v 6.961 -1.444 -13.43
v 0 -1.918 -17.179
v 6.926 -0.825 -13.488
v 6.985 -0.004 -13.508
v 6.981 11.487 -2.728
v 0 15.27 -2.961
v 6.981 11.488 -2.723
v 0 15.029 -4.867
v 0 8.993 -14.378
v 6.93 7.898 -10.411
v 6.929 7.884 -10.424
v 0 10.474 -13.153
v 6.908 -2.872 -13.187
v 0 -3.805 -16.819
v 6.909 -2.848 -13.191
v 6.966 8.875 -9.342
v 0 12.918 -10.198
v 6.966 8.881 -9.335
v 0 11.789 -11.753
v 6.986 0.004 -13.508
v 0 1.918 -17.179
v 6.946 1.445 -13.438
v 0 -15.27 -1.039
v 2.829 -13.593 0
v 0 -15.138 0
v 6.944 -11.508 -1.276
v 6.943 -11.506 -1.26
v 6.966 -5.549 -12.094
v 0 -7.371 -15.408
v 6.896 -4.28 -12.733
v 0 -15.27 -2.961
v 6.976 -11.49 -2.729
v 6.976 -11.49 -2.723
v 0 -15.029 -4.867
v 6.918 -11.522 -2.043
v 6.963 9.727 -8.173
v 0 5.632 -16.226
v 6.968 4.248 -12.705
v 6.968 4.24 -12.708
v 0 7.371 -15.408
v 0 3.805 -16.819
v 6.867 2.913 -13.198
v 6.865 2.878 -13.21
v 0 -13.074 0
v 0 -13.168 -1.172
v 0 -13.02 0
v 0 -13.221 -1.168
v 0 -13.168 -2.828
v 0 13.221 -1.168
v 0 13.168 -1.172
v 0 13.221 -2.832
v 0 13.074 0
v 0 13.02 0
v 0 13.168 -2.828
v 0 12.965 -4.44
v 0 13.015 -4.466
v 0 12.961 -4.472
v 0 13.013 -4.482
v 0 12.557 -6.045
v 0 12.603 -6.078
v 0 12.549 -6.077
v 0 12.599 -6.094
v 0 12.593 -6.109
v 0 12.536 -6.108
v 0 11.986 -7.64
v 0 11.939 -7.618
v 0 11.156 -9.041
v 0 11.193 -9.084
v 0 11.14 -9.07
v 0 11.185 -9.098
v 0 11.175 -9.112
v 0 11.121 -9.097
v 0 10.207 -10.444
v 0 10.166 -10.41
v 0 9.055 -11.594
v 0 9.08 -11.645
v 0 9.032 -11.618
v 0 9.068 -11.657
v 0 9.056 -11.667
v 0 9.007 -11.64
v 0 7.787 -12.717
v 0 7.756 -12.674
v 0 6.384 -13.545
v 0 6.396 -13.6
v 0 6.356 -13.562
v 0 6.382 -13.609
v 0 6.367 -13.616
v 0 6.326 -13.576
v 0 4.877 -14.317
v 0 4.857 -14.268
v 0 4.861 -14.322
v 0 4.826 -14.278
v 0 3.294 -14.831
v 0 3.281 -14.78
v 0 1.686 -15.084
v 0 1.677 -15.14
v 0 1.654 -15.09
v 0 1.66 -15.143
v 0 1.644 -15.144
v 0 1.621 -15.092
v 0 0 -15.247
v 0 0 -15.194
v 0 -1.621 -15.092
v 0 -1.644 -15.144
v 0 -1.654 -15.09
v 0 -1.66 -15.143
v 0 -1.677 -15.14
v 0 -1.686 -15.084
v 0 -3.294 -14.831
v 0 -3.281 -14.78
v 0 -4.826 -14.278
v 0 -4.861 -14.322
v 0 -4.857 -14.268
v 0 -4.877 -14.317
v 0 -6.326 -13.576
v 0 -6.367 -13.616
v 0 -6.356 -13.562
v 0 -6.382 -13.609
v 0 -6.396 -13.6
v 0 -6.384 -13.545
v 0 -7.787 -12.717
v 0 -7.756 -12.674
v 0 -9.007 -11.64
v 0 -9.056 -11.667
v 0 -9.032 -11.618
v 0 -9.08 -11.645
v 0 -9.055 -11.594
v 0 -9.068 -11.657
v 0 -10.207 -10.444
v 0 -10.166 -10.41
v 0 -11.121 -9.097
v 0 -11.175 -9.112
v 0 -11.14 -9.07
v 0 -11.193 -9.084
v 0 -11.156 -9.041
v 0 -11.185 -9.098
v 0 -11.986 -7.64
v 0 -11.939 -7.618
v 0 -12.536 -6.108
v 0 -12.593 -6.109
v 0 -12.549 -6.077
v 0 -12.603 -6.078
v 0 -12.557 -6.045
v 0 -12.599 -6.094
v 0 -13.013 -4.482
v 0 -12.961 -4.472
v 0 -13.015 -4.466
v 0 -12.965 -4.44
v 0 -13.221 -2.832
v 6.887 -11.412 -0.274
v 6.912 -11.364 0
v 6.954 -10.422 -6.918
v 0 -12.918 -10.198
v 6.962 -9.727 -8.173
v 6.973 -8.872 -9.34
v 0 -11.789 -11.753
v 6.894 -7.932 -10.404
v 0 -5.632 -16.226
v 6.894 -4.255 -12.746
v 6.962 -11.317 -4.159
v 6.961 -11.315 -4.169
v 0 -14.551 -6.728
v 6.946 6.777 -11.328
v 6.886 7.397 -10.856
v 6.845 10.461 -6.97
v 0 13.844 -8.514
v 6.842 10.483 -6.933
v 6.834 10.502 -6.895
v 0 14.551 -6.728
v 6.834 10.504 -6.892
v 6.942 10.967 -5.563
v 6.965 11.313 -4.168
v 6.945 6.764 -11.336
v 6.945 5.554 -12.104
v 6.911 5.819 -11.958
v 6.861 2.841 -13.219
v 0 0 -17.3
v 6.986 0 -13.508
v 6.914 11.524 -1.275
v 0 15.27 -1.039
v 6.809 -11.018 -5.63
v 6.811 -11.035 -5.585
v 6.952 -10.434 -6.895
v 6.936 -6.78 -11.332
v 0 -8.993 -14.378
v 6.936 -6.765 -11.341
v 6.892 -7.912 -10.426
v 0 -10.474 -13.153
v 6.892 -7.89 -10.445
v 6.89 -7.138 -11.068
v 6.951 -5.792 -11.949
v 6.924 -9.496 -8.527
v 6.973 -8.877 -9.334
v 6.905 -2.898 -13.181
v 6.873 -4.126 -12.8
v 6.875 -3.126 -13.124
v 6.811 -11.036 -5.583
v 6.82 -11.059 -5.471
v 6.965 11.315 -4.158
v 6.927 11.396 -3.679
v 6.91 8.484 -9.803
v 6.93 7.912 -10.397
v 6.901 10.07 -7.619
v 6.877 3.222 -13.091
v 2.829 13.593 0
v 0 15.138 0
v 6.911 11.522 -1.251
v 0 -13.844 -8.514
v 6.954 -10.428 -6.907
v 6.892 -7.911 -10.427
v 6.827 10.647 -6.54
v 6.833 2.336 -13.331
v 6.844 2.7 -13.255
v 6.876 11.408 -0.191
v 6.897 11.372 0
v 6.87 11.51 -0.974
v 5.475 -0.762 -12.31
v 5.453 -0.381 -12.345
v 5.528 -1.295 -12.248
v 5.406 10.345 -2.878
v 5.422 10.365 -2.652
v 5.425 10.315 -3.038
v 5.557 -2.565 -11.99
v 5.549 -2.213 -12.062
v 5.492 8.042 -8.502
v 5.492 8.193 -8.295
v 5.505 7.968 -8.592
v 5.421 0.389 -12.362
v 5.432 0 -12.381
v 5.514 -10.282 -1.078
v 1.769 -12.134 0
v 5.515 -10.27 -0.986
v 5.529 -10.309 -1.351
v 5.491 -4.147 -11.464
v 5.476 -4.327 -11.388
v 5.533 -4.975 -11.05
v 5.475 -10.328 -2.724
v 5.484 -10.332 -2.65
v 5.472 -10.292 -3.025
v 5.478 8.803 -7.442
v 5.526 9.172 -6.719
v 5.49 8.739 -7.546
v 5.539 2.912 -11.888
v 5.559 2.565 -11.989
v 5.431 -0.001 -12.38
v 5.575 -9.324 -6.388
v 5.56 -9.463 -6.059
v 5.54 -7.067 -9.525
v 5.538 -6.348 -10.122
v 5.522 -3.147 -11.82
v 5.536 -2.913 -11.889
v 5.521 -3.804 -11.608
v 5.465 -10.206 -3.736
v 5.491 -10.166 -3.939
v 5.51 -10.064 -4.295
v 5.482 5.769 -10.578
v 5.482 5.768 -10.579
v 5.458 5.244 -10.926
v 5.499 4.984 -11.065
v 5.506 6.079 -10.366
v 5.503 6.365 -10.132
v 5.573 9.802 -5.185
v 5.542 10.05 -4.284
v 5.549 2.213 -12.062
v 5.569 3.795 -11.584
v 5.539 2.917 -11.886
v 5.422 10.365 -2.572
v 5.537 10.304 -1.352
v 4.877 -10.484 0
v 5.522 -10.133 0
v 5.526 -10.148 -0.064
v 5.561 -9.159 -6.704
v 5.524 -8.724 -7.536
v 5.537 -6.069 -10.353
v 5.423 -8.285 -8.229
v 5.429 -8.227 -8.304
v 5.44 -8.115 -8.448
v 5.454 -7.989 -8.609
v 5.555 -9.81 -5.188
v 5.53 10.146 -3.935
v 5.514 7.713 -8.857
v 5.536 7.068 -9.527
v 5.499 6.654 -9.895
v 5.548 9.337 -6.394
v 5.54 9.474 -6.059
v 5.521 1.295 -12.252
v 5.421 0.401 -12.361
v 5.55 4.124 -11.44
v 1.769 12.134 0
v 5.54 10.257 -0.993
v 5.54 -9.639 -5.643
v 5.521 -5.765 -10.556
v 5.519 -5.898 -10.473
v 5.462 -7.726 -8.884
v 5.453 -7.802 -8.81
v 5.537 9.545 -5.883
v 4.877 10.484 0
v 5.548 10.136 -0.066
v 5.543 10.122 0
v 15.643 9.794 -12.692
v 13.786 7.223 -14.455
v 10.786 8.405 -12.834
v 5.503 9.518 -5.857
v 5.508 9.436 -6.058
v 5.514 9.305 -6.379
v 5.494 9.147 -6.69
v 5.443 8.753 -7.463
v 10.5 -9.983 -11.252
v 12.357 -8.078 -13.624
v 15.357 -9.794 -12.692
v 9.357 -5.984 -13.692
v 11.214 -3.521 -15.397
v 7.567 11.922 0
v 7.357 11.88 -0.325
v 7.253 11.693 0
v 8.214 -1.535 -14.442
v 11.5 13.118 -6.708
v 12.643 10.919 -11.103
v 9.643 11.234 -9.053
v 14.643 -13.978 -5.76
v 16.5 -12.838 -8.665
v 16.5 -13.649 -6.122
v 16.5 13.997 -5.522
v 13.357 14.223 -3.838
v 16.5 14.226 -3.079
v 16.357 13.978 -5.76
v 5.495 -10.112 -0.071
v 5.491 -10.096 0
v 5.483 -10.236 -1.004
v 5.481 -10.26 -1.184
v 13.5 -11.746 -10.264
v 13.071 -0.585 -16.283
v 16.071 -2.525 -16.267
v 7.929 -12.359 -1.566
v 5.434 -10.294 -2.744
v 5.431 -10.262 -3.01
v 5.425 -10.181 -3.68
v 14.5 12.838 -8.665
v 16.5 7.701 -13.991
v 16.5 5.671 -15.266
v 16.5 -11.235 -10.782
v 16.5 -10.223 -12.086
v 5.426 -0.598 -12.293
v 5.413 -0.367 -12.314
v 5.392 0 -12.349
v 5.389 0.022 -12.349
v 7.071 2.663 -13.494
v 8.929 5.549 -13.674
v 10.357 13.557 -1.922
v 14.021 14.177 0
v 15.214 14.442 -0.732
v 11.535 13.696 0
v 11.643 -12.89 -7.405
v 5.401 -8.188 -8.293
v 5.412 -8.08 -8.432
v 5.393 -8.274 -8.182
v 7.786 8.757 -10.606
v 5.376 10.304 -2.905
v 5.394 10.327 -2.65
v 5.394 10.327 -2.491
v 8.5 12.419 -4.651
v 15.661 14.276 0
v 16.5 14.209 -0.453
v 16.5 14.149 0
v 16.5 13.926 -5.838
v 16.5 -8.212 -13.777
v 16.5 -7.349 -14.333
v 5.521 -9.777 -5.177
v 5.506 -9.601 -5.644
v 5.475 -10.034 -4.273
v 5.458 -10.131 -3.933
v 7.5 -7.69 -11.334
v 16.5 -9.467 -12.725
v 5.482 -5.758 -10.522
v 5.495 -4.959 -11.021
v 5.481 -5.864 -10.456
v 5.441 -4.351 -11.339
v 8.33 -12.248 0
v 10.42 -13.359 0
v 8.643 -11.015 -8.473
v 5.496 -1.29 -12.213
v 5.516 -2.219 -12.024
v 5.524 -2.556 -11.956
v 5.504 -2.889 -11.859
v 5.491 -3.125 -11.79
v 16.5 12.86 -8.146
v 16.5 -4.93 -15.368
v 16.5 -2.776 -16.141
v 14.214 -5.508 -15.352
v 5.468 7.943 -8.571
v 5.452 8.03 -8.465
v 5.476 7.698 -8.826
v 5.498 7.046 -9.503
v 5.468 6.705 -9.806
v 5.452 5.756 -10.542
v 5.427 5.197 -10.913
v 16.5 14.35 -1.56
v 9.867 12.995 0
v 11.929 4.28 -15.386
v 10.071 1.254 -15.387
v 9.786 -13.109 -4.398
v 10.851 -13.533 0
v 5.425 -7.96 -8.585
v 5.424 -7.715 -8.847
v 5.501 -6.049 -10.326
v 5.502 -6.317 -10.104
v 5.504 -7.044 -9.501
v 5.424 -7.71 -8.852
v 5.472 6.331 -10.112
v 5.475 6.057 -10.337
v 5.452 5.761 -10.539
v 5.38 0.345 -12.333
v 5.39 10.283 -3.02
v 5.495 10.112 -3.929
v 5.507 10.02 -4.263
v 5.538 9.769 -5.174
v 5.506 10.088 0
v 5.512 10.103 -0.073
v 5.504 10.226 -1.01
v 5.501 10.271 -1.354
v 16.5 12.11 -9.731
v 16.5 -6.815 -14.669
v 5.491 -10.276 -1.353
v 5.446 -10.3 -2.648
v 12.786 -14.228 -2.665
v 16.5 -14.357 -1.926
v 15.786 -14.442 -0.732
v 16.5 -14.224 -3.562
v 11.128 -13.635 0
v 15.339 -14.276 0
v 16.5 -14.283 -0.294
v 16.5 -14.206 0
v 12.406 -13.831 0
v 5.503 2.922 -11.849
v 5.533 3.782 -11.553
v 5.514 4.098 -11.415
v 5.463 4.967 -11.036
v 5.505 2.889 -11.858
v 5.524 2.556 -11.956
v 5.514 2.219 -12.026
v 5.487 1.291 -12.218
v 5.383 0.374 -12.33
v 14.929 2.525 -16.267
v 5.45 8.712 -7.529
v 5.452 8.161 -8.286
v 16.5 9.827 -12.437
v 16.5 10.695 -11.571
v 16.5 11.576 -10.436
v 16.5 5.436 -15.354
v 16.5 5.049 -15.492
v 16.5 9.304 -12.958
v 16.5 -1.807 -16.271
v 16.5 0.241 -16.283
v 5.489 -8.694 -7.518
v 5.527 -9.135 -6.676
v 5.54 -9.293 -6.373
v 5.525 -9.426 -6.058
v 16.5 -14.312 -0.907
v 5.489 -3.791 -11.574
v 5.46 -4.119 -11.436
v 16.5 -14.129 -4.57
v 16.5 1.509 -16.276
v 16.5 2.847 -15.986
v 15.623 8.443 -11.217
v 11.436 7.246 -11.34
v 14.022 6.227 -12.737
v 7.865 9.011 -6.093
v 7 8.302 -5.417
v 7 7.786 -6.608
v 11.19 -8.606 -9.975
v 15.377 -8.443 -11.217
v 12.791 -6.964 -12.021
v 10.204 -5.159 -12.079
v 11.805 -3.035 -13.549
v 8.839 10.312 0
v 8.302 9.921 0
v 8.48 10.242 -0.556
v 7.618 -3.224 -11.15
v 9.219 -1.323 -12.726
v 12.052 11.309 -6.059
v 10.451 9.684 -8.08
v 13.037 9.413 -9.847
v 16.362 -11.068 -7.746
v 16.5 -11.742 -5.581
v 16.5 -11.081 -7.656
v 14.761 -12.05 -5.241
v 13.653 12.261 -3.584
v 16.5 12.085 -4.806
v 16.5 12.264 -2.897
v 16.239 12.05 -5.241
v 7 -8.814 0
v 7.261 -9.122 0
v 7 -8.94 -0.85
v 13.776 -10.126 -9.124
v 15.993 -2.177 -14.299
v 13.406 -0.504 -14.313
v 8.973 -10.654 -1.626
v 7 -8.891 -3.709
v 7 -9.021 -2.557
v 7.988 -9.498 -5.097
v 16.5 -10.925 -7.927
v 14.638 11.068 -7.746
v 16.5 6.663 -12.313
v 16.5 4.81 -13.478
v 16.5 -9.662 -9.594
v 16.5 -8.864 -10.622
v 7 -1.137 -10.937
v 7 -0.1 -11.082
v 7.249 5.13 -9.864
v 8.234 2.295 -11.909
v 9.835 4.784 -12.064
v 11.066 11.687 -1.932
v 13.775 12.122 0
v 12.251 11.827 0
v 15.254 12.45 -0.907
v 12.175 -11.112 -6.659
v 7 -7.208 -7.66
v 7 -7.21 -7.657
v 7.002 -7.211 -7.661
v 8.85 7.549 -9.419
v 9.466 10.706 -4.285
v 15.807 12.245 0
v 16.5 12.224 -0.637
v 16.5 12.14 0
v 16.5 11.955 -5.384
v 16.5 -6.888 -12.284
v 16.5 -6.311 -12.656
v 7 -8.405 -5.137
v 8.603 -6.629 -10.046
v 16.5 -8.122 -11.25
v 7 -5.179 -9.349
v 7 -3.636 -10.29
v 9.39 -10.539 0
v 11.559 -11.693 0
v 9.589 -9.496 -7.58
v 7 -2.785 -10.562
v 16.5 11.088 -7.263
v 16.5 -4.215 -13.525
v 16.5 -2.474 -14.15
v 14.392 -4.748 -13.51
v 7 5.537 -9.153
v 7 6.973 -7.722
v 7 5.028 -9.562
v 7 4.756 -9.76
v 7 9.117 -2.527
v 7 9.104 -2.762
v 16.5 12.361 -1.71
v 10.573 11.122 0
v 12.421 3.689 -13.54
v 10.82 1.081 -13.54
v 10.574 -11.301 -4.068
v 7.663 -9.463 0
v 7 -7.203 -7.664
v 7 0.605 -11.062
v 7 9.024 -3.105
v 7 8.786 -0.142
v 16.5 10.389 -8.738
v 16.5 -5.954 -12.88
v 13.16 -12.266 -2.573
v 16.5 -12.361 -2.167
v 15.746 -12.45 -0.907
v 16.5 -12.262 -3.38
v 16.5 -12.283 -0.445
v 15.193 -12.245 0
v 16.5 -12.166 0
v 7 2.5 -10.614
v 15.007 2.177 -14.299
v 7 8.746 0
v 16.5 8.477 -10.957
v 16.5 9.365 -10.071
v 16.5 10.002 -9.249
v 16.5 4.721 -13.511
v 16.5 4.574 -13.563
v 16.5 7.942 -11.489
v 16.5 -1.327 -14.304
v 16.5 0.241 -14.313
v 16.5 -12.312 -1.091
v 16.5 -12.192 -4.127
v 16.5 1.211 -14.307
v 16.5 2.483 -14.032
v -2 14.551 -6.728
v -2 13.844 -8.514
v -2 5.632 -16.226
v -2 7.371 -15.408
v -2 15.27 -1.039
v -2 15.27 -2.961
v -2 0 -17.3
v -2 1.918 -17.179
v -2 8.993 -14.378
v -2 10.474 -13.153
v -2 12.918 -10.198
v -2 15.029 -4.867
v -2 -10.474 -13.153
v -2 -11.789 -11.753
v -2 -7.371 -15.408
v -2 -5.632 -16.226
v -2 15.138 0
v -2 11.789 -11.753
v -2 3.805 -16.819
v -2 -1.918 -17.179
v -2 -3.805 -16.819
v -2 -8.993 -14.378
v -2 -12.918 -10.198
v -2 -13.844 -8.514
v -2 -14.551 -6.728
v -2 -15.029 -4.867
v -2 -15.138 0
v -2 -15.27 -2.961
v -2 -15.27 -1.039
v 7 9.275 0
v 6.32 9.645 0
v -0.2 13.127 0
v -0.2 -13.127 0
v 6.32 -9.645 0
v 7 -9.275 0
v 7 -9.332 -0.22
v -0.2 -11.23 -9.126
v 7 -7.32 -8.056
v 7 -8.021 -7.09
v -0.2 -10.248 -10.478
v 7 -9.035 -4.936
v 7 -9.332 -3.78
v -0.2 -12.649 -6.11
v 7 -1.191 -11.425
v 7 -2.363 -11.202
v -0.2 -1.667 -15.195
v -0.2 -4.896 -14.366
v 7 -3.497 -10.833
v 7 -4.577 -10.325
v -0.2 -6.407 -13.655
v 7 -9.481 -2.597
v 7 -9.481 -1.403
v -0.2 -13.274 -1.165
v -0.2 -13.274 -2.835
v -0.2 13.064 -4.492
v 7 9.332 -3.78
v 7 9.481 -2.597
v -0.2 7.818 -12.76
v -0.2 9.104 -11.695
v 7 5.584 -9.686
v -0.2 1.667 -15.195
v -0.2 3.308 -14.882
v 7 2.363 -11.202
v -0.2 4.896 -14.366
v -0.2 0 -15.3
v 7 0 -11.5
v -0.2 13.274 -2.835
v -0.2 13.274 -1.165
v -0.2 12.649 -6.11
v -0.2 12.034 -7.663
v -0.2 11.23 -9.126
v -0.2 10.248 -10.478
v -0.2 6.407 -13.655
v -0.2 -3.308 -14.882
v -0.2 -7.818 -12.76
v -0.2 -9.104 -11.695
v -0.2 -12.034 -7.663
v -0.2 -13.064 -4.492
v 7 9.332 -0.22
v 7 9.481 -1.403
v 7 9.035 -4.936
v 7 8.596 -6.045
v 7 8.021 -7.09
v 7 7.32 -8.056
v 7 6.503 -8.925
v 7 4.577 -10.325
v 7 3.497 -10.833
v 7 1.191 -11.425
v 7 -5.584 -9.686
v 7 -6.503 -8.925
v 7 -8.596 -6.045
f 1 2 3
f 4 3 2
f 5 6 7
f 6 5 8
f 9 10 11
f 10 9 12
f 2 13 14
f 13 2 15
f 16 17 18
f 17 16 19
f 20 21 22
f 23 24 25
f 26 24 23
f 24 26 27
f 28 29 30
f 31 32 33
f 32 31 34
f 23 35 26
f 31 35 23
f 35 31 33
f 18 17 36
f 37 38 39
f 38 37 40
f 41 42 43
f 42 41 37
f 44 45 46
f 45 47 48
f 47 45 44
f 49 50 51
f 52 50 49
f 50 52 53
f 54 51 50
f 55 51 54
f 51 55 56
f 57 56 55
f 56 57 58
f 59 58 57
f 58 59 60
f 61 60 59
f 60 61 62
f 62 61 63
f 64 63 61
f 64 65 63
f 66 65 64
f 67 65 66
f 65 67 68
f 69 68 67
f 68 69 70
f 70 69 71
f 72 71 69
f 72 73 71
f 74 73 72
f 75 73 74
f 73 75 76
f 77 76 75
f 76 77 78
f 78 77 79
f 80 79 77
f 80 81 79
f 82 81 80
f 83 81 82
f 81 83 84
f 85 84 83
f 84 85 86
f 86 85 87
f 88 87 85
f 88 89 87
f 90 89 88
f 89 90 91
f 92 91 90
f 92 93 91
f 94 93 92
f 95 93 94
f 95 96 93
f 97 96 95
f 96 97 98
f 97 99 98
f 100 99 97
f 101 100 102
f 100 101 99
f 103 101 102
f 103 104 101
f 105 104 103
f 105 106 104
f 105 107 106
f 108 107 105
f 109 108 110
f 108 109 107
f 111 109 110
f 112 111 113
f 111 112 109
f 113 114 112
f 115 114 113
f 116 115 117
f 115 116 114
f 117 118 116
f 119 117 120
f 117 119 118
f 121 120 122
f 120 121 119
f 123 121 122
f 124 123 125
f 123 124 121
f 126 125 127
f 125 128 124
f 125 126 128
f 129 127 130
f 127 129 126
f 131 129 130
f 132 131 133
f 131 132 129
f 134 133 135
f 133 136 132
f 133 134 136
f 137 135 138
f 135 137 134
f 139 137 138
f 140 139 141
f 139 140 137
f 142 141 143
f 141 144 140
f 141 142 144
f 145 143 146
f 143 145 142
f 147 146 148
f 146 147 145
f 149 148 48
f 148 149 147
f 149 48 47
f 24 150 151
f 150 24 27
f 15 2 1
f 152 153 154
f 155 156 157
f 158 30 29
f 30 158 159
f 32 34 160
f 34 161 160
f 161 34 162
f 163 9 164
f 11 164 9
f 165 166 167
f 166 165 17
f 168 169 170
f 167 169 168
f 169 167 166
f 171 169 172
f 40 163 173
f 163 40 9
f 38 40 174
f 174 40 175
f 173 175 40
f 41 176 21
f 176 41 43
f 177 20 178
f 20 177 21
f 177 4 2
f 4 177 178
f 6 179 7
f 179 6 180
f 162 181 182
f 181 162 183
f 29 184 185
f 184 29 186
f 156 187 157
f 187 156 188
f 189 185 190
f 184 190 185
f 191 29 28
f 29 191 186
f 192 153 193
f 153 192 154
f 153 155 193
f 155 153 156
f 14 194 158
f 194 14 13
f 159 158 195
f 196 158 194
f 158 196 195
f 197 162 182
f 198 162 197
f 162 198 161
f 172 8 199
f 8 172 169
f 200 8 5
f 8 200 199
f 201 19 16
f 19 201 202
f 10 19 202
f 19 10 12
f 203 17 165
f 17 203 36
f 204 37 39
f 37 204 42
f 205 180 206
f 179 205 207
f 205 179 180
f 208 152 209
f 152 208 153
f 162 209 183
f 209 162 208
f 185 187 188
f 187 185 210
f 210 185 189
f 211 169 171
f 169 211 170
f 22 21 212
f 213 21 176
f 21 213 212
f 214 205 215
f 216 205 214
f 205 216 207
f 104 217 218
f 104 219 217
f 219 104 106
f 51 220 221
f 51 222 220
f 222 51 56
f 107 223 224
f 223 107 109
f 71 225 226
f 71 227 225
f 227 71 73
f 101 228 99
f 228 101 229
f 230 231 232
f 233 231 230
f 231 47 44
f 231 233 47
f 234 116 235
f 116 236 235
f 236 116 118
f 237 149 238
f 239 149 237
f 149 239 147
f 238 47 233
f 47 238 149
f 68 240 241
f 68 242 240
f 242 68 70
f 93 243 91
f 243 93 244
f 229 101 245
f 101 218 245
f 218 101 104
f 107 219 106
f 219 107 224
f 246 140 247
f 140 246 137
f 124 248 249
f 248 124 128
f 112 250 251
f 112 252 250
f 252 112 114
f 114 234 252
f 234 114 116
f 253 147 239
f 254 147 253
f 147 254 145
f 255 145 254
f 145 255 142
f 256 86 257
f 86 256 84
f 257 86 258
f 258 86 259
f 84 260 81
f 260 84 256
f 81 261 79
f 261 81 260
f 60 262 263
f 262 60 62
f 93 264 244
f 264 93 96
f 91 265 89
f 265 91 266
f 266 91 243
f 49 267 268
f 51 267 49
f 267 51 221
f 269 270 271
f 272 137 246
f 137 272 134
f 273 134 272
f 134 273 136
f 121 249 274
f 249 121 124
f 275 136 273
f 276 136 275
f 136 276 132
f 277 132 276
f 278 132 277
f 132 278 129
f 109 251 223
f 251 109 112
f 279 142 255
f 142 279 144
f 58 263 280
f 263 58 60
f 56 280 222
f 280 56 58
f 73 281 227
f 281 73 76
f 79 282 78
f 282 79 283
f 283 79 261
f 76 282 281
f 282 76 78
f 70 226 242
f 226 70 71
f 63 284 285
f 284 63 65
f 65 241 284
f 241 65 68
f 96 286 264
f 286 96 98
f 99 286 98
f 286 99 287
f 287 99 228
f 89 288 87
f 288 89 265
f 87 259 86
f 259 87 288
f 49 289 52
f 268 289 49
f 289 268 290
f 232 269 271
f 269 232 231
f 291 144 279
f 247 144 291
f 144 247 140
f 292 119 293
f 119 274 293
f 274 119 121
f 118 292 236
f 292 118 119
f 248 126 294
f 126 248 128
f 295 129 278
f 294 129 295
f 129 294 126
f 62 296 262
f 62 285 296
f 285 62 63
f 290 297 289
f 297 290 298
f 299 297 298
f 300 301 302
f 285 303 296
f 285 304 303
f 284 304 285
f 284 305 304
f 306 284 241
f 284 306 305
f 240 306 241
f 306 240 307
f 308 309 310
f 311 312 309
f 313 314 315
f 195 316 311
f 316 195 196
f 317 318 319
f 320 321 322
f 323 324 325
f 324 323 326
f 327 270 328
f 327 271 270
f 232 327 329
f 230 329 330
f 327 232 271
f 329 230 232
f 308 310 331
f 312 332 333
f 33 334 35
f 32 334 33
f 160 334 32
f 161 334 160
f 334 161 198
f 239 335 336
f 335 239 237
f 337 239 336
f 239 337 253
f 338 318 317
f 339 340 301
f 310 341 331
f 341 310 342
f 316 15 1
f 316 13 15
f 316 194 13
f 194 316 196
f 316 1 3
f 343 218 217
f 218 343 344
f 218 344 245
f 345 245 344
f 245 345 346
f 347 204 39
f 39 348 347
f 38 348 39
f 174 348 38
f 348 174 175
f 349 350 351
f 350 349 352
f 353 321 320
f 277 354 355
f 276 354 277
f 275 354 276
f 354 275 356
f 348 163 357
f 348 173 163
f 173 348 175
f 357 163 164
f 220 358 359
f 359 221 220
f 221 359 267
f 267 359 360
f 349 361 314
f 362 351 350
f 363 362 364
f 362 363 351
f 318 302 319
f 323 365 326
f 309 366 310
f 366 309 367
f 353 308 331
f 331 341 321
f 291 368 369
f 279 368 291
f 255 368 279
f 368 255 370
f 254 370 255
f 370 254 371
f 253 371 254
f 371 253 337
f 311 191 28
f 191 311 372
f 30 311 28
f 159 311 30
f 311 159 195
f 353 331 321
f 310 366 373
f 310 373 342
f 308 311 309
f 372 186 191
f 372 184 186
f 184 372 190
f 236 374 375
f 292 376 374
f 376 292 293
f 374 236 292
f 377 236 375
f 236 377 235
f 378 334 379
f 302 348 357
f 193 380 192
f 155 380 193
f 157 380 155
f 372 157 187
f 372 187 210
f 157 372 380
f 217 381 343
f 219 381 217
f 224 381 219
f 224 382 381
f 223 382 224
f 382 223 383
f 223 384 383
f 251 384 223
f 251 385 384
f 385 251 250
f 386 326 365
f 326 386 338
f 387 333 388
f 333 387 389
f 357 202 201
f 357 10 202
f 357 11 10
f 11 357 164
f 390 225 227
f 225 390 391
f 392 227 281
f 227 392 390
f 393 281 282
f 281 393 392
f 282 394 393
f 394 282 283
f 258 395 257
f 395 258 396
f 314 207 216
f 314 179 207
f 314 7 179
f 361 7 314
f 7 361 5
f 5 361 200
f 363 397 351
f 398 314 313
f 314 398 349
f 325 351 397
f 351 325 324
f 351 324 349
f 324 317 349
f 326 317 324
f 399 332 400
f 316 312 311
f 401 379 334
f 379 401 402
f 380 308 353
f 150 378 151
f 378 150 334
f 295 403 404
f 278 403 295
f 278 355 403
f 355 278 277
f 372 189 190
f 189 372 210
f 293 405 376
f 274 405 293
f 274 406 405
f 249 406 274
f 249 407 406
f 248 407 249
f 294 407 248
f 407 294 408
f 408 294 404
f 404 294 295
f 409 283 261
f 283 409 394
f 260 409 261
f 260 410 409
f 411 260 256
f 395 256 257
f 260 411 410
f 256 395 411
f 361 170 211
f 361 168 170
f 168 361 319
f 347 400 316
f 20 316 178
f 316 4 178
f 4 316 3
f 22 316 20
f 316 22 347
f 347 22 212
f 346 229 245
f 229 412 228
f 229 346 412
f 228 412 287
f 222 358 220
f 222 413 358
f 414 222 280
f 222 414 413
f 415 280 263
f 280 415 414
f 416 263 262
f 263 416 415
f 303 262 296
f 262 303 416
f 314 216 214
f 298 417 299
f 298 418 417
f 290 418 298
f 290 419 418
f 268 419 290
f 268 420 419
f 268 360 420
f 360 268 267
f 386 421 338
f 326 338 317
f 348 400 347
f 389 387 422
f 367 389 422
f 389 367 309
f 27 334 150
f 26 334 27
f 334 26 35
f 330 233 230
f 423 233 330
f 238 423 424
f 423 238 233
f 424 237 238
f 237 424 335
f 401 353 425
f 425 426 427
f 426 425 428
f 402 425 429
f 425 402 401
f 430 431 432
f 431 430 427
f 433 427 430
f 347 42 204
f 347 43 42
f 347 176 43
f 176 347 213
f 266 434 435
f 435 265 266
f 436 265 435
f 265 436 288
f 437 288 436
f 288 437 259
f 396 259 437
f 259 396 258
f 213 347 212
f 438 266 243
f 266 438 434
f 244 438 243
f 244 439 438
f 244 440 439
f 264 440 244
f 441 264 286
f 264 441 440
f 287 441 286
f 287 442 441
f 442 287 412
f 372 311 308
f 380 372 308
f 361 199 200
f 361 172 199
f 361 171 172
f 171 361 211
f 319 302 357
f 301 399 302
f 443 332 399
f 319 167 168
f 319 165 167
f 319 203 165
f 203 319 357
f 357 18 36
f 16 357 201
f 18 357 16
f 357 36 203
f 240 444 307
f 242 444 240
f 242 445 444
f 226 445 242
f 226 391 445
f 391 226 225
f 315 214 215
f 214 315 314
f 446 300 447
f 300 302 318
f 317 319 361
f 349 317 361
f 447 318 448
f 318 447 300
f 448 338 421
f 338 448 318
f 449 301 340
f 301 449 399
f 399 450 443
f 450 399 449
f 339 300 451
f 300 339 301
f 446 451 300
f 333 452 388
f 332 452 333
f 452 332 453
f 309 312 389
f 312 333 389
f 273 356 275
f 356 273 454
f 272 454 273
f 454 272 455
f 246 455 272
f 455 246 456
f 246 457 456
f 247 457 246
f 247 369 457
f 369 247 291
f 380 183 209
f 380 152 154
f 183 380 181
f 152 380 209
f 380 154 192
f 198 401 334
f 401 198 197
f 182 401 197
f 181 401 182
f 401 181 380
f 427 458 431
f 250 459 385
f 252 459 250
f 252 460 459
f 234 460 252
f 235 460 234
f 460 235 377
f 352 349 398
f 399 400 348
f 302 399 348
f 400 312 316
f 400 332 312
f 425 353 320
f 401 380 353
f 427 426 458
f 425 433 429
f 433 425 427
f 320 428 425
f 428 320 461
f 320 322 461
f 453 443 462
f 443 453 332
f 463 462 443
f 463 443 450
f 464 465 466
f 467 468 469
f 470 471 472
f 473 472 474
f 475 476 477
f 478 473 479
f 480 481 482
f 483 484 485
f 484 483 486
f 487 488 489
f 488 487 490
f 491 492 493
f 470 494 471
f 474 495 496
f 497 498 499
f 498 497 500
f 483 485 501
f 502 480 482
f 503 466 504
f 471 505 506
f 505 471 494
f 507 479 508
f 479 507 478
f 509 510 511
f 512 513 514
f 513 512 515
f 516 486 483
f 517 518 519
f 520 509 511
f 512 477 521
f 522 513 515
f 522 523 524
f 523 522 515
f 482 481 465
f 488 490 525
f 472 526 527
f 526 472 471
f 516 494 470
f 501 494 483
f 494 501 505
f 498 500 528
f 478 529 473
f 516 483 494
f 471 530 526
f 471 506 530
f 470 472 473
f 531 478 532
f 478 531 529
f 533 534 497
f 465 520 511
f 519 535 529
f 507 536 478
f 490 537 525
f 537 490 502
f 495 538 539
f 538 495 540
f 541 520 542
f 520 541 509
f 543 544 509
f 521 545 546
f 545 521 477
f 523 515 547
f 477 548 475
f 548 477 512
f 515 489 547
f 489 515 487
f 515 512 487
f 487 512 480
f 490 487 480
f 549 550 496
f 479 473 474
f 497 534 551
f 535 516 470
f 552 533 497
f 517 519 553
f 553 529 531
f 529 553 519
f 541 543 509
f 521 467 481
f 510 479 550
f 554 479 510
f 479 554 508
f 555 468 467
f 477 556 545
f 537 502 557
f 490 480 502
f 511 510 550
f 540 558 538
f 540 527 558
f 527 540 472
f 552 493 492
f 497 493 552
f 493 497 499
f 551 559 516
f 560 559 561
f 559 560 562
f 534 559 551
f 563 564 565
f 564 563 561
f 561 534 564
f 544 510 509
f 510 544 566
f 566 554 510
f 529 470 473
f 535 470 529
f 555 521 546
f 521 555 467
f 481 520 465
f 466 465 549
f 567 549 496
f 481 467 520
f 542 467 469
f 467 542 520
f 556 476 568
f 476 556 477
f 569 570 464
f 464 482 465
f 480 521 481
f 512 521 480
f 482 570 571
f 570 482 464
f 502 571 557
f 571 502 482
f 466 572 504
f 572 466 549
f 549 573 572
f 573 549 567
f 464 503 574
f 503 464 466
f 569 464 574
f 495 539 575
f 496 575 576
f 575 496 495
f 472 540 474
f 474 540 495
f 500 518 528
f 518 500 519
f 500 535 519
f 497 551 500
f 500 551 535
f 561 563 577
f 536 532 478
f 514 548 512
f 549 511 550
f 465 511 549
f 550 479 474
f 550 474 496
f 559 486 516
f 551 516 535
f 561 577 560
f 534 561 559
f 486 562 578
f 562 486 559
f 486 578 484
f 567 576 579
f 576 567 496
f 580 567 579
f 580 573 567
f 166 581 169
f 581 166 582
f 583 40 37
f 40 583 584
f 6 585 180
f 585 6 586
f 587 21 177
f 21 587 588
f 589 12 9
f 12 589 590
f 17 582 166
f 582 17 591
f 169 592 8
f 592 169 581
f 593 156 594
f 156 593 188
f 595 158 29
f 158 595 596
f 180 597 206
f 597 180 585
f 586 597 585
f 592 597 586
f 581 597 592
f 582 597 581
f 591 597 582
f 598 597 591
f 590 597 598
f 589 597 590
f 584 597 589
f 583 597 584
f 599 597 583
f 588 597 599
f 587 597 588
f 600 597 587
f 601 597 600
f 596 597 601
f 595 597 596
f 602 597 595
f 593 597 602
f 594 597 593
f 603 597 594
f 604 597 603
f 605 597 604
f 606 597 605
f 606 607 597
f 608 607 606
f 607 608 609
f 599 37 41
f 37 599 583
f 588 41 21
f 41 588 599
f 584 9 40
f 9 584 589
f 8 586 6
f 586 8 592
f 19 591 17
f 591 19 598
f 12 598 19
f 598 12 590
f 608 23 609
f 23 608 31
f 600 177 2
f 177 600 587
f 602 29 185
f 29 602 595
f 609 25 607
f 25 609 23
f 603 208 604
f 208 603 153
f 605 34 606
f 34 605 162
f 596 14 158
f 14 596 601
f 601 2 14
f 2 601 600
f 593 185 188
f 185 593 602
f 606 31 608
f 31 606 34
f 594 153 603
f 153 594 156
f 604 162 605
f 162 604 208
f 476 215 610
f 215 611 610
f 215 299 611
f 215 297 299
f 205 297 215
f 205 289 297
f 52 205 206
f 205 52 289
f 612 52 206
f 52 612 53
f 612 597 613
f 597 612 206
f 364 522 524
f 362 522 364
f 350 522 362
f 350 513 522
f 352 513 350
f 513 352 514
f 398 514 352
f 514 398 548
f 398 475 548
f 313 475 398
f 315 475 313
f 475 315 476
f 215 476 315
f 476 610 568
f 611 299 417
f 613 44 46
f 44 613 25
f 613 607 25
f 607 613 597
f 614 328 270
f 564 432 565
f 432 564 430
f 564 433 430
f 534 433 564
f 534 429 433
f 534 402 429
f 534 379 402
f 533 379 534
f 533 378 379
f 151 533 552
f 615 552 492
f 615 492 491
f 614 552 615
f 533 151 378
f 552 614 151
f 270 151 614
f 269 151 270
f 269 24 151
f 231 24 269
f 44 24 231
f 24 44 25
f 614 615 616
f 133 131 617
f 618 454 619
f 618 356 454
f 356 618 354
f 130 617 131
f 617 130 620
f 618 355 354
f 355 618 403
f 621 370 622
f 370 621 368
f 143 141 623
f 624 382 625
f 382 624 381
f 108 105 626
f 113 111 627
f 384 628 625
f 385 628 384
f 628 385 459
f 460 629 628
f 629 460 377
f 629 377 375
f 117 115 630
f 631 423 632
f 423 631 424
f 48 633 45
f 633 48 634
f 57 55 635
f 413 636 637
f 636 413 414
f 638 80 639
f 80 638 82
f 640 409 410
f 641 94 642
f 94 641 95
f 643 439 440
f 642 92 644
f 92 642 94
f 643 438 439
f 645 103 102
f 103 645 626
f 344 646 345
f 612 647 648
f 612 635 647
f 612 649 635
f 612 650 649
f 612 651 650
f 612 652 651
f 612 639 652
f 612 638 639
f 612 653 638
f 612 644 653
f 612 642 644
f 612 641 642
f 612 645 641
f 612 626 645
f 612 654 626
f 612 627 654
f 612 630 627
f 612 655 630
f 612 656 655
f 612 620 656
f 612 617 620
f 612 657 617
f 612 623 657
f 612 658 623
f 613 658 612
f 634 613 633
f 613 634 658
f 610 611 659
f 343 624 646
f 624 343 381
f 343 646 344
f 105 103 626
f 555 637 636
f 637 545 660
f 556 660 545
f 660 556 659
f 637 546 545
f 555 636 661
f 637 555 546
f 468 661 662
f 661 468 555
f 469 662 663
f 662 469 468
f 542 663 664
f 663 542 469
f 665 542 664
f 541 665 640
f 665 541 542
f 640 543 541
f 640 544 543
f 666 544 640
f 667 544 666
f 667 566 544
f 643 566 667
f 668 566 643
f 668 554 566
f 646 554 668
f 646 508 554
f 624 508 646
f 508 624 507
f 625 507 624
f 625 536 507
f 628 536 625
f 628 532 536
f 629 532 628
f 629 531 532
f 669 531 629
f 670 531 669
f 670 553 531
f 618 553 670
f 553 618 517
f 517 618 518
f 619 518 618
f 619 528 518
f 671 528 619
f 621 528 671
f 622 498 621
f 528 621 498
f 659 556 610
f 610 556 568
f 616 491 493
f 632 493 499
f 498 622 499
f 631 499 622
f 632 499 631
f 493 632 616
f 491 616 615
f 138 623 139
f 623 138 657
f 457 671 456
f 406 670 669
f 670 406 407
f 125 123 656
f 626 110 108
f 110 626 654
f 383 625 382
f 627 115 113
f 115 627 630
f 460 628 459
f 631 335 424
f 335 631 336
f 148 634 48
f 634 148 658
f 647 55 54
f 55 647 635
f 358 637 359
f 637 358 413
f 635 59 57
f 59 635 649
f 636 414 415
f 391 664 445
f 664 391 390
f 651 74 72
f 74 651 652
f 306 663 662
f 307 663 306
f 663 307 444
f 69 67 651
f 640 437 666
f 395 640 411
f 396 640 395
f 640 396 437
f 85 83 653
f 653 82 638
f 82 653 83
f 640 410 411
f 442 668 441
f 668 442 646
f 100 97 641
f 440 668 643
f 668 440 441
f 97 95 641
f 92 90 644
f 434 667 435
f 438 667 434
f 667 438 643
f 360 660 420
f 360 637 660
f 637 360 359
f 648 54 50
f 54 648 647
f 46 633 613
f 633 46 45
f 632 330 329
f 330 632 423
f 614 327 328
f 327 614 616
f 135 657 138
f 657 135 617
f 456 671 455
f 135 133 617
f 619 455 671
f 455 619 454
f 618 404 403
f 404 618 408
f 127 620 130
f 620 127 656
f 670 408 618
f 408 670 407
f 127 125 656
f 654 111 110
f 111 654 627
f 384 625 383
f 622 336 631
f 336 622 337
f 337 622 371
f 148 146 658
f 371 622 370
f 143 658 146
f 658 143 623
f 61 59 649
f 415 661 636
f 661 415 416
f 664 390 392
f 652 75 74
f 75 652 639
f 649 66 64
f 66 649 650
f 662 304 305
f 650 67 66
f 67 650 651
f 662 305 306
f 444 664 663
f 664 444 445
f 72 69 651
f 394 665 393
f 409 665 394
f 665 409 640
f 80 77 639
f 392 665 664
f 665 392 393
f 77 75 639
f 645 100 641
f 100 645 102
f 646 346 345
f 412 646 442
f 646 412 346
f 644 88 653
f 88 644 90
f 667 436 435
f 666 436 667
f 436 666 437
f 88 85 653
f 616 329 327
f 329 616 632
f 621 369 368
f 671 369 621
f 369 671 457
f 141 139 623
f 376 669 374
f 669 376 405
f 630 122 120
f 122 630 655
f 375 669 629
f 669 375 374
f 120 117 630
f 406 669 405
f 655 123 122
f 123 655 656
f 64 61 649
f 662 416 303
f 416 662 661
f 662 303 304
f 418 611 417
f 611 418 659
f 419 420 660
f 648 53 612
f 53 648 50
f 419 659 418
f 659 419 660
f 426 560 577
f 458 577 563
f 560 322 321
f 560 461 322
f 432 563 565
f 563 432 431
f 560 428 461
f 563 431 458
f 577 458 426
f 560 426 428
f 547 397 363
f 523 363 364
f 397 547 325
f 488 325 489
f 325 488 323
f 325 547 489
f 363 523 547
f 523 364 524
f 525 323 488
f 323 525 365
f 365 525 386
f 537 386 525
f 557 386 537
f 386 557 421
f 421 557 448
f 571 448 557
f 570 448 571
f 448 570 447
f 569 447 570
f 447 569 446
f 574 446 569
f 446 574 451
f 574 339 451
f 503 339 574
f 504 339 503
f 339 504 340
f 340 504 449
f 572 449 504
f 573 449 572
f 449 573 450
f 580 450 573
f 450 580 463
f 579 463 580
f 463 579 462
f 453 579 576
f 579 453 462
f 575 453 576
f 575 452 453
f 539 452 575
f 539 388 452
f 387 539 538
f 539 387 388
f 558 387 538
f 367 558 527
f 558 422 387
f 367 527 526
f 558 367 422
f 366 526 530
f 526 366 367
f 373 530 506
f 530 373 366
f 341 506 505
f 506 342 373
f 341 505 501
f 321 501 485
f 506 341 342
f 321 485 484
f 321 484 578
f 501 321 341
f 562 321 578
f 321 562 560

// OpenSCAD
// file: ../external/fibsphere/files/fibonacci_sphere.scad
fibonacci_sphere(50,n=10000);
module fibonacci_sphere(r, n, $fn){
    $n = n==undef? ceil((0.5*$fn*$fn)/2) : n;
    hull()
    polyhedron(points = [
        for(i=[-$n:($n-2)])
            r * _pos(i,$n)
    ], faces=[
        for(i=[0:3:2*$n])
            [i,i+1,i+2]
        // for(i=[-$n:3:($n-2)])
        //     [i+$n,i+1+$n,i+2+$n]
    ]);
}

//calculates ith vertex position on a fibonacci unit sphere of 2*n vertices
function _pos(i, n) =
	[cos(_lon(i)) * _xy(_z(i,n)), 
	 sin(_lon(i)) * _xy(_z(i,n)), 
	 _z(i,n)];

function _lon(i) = _golden_angle*i;
function _z(i,n) = 2*i/(2*n+1);
function _xy(z)  = sqrt(1-pow(z,2));

_golden_ratio = 1.61803;
_golden_angle = 360 * _golden_ratio; 
// main file
use <../external/fibsphere/files/fibonacci_sphere.scad>

d1 = 19;
d2 = 26.6;
d = 6;
dh = 7;
wall = 2;
dball = 25;
ball_out = 8.5;
over_x = 2;
over_z = 1;

$fn = 50;
inf = 0.1;

r1 = d1/2;
r2 = d2/2;
rh = (r2 - r1) / d * dh + r1;

module funnel () {
  difference () {
    cylinder(dh, r1 + wall, r2 + wall);

    translate([0, 0, -inf])
    cylinder(dh + 2*inf, r1, r2);
  }

  translate([0, 0, dh])
  cylinder(wall, r2 + wall, r2 + wall);
}

module ball () {
  translate([0, 0, - ball_out])
  difference () {
    fibonacci_sphere(dball/2 + wall, 101);

    fibonacci_sphere(dball/2, 101);
  }
}

module magnet_holder () {
  translate([-wall, 0, 0])
  rotate(-90, [0,1,0])
  translate([-over_x, 0, - dh - wall])
  difference () {
    union () {
        funnel();
        ball();
    }

    translate([over_x, -dball, -dball])
    cube([2*dball, 2*dball, 2*dball]);

    cylinder(dh + 2*inf, r1, r2);

    translate([-dball, -dball, -2*dball - ball_out - over_z])
    cube([2*dball, 2*dball, 2*dball]);
  }
}

magnet_holder();
